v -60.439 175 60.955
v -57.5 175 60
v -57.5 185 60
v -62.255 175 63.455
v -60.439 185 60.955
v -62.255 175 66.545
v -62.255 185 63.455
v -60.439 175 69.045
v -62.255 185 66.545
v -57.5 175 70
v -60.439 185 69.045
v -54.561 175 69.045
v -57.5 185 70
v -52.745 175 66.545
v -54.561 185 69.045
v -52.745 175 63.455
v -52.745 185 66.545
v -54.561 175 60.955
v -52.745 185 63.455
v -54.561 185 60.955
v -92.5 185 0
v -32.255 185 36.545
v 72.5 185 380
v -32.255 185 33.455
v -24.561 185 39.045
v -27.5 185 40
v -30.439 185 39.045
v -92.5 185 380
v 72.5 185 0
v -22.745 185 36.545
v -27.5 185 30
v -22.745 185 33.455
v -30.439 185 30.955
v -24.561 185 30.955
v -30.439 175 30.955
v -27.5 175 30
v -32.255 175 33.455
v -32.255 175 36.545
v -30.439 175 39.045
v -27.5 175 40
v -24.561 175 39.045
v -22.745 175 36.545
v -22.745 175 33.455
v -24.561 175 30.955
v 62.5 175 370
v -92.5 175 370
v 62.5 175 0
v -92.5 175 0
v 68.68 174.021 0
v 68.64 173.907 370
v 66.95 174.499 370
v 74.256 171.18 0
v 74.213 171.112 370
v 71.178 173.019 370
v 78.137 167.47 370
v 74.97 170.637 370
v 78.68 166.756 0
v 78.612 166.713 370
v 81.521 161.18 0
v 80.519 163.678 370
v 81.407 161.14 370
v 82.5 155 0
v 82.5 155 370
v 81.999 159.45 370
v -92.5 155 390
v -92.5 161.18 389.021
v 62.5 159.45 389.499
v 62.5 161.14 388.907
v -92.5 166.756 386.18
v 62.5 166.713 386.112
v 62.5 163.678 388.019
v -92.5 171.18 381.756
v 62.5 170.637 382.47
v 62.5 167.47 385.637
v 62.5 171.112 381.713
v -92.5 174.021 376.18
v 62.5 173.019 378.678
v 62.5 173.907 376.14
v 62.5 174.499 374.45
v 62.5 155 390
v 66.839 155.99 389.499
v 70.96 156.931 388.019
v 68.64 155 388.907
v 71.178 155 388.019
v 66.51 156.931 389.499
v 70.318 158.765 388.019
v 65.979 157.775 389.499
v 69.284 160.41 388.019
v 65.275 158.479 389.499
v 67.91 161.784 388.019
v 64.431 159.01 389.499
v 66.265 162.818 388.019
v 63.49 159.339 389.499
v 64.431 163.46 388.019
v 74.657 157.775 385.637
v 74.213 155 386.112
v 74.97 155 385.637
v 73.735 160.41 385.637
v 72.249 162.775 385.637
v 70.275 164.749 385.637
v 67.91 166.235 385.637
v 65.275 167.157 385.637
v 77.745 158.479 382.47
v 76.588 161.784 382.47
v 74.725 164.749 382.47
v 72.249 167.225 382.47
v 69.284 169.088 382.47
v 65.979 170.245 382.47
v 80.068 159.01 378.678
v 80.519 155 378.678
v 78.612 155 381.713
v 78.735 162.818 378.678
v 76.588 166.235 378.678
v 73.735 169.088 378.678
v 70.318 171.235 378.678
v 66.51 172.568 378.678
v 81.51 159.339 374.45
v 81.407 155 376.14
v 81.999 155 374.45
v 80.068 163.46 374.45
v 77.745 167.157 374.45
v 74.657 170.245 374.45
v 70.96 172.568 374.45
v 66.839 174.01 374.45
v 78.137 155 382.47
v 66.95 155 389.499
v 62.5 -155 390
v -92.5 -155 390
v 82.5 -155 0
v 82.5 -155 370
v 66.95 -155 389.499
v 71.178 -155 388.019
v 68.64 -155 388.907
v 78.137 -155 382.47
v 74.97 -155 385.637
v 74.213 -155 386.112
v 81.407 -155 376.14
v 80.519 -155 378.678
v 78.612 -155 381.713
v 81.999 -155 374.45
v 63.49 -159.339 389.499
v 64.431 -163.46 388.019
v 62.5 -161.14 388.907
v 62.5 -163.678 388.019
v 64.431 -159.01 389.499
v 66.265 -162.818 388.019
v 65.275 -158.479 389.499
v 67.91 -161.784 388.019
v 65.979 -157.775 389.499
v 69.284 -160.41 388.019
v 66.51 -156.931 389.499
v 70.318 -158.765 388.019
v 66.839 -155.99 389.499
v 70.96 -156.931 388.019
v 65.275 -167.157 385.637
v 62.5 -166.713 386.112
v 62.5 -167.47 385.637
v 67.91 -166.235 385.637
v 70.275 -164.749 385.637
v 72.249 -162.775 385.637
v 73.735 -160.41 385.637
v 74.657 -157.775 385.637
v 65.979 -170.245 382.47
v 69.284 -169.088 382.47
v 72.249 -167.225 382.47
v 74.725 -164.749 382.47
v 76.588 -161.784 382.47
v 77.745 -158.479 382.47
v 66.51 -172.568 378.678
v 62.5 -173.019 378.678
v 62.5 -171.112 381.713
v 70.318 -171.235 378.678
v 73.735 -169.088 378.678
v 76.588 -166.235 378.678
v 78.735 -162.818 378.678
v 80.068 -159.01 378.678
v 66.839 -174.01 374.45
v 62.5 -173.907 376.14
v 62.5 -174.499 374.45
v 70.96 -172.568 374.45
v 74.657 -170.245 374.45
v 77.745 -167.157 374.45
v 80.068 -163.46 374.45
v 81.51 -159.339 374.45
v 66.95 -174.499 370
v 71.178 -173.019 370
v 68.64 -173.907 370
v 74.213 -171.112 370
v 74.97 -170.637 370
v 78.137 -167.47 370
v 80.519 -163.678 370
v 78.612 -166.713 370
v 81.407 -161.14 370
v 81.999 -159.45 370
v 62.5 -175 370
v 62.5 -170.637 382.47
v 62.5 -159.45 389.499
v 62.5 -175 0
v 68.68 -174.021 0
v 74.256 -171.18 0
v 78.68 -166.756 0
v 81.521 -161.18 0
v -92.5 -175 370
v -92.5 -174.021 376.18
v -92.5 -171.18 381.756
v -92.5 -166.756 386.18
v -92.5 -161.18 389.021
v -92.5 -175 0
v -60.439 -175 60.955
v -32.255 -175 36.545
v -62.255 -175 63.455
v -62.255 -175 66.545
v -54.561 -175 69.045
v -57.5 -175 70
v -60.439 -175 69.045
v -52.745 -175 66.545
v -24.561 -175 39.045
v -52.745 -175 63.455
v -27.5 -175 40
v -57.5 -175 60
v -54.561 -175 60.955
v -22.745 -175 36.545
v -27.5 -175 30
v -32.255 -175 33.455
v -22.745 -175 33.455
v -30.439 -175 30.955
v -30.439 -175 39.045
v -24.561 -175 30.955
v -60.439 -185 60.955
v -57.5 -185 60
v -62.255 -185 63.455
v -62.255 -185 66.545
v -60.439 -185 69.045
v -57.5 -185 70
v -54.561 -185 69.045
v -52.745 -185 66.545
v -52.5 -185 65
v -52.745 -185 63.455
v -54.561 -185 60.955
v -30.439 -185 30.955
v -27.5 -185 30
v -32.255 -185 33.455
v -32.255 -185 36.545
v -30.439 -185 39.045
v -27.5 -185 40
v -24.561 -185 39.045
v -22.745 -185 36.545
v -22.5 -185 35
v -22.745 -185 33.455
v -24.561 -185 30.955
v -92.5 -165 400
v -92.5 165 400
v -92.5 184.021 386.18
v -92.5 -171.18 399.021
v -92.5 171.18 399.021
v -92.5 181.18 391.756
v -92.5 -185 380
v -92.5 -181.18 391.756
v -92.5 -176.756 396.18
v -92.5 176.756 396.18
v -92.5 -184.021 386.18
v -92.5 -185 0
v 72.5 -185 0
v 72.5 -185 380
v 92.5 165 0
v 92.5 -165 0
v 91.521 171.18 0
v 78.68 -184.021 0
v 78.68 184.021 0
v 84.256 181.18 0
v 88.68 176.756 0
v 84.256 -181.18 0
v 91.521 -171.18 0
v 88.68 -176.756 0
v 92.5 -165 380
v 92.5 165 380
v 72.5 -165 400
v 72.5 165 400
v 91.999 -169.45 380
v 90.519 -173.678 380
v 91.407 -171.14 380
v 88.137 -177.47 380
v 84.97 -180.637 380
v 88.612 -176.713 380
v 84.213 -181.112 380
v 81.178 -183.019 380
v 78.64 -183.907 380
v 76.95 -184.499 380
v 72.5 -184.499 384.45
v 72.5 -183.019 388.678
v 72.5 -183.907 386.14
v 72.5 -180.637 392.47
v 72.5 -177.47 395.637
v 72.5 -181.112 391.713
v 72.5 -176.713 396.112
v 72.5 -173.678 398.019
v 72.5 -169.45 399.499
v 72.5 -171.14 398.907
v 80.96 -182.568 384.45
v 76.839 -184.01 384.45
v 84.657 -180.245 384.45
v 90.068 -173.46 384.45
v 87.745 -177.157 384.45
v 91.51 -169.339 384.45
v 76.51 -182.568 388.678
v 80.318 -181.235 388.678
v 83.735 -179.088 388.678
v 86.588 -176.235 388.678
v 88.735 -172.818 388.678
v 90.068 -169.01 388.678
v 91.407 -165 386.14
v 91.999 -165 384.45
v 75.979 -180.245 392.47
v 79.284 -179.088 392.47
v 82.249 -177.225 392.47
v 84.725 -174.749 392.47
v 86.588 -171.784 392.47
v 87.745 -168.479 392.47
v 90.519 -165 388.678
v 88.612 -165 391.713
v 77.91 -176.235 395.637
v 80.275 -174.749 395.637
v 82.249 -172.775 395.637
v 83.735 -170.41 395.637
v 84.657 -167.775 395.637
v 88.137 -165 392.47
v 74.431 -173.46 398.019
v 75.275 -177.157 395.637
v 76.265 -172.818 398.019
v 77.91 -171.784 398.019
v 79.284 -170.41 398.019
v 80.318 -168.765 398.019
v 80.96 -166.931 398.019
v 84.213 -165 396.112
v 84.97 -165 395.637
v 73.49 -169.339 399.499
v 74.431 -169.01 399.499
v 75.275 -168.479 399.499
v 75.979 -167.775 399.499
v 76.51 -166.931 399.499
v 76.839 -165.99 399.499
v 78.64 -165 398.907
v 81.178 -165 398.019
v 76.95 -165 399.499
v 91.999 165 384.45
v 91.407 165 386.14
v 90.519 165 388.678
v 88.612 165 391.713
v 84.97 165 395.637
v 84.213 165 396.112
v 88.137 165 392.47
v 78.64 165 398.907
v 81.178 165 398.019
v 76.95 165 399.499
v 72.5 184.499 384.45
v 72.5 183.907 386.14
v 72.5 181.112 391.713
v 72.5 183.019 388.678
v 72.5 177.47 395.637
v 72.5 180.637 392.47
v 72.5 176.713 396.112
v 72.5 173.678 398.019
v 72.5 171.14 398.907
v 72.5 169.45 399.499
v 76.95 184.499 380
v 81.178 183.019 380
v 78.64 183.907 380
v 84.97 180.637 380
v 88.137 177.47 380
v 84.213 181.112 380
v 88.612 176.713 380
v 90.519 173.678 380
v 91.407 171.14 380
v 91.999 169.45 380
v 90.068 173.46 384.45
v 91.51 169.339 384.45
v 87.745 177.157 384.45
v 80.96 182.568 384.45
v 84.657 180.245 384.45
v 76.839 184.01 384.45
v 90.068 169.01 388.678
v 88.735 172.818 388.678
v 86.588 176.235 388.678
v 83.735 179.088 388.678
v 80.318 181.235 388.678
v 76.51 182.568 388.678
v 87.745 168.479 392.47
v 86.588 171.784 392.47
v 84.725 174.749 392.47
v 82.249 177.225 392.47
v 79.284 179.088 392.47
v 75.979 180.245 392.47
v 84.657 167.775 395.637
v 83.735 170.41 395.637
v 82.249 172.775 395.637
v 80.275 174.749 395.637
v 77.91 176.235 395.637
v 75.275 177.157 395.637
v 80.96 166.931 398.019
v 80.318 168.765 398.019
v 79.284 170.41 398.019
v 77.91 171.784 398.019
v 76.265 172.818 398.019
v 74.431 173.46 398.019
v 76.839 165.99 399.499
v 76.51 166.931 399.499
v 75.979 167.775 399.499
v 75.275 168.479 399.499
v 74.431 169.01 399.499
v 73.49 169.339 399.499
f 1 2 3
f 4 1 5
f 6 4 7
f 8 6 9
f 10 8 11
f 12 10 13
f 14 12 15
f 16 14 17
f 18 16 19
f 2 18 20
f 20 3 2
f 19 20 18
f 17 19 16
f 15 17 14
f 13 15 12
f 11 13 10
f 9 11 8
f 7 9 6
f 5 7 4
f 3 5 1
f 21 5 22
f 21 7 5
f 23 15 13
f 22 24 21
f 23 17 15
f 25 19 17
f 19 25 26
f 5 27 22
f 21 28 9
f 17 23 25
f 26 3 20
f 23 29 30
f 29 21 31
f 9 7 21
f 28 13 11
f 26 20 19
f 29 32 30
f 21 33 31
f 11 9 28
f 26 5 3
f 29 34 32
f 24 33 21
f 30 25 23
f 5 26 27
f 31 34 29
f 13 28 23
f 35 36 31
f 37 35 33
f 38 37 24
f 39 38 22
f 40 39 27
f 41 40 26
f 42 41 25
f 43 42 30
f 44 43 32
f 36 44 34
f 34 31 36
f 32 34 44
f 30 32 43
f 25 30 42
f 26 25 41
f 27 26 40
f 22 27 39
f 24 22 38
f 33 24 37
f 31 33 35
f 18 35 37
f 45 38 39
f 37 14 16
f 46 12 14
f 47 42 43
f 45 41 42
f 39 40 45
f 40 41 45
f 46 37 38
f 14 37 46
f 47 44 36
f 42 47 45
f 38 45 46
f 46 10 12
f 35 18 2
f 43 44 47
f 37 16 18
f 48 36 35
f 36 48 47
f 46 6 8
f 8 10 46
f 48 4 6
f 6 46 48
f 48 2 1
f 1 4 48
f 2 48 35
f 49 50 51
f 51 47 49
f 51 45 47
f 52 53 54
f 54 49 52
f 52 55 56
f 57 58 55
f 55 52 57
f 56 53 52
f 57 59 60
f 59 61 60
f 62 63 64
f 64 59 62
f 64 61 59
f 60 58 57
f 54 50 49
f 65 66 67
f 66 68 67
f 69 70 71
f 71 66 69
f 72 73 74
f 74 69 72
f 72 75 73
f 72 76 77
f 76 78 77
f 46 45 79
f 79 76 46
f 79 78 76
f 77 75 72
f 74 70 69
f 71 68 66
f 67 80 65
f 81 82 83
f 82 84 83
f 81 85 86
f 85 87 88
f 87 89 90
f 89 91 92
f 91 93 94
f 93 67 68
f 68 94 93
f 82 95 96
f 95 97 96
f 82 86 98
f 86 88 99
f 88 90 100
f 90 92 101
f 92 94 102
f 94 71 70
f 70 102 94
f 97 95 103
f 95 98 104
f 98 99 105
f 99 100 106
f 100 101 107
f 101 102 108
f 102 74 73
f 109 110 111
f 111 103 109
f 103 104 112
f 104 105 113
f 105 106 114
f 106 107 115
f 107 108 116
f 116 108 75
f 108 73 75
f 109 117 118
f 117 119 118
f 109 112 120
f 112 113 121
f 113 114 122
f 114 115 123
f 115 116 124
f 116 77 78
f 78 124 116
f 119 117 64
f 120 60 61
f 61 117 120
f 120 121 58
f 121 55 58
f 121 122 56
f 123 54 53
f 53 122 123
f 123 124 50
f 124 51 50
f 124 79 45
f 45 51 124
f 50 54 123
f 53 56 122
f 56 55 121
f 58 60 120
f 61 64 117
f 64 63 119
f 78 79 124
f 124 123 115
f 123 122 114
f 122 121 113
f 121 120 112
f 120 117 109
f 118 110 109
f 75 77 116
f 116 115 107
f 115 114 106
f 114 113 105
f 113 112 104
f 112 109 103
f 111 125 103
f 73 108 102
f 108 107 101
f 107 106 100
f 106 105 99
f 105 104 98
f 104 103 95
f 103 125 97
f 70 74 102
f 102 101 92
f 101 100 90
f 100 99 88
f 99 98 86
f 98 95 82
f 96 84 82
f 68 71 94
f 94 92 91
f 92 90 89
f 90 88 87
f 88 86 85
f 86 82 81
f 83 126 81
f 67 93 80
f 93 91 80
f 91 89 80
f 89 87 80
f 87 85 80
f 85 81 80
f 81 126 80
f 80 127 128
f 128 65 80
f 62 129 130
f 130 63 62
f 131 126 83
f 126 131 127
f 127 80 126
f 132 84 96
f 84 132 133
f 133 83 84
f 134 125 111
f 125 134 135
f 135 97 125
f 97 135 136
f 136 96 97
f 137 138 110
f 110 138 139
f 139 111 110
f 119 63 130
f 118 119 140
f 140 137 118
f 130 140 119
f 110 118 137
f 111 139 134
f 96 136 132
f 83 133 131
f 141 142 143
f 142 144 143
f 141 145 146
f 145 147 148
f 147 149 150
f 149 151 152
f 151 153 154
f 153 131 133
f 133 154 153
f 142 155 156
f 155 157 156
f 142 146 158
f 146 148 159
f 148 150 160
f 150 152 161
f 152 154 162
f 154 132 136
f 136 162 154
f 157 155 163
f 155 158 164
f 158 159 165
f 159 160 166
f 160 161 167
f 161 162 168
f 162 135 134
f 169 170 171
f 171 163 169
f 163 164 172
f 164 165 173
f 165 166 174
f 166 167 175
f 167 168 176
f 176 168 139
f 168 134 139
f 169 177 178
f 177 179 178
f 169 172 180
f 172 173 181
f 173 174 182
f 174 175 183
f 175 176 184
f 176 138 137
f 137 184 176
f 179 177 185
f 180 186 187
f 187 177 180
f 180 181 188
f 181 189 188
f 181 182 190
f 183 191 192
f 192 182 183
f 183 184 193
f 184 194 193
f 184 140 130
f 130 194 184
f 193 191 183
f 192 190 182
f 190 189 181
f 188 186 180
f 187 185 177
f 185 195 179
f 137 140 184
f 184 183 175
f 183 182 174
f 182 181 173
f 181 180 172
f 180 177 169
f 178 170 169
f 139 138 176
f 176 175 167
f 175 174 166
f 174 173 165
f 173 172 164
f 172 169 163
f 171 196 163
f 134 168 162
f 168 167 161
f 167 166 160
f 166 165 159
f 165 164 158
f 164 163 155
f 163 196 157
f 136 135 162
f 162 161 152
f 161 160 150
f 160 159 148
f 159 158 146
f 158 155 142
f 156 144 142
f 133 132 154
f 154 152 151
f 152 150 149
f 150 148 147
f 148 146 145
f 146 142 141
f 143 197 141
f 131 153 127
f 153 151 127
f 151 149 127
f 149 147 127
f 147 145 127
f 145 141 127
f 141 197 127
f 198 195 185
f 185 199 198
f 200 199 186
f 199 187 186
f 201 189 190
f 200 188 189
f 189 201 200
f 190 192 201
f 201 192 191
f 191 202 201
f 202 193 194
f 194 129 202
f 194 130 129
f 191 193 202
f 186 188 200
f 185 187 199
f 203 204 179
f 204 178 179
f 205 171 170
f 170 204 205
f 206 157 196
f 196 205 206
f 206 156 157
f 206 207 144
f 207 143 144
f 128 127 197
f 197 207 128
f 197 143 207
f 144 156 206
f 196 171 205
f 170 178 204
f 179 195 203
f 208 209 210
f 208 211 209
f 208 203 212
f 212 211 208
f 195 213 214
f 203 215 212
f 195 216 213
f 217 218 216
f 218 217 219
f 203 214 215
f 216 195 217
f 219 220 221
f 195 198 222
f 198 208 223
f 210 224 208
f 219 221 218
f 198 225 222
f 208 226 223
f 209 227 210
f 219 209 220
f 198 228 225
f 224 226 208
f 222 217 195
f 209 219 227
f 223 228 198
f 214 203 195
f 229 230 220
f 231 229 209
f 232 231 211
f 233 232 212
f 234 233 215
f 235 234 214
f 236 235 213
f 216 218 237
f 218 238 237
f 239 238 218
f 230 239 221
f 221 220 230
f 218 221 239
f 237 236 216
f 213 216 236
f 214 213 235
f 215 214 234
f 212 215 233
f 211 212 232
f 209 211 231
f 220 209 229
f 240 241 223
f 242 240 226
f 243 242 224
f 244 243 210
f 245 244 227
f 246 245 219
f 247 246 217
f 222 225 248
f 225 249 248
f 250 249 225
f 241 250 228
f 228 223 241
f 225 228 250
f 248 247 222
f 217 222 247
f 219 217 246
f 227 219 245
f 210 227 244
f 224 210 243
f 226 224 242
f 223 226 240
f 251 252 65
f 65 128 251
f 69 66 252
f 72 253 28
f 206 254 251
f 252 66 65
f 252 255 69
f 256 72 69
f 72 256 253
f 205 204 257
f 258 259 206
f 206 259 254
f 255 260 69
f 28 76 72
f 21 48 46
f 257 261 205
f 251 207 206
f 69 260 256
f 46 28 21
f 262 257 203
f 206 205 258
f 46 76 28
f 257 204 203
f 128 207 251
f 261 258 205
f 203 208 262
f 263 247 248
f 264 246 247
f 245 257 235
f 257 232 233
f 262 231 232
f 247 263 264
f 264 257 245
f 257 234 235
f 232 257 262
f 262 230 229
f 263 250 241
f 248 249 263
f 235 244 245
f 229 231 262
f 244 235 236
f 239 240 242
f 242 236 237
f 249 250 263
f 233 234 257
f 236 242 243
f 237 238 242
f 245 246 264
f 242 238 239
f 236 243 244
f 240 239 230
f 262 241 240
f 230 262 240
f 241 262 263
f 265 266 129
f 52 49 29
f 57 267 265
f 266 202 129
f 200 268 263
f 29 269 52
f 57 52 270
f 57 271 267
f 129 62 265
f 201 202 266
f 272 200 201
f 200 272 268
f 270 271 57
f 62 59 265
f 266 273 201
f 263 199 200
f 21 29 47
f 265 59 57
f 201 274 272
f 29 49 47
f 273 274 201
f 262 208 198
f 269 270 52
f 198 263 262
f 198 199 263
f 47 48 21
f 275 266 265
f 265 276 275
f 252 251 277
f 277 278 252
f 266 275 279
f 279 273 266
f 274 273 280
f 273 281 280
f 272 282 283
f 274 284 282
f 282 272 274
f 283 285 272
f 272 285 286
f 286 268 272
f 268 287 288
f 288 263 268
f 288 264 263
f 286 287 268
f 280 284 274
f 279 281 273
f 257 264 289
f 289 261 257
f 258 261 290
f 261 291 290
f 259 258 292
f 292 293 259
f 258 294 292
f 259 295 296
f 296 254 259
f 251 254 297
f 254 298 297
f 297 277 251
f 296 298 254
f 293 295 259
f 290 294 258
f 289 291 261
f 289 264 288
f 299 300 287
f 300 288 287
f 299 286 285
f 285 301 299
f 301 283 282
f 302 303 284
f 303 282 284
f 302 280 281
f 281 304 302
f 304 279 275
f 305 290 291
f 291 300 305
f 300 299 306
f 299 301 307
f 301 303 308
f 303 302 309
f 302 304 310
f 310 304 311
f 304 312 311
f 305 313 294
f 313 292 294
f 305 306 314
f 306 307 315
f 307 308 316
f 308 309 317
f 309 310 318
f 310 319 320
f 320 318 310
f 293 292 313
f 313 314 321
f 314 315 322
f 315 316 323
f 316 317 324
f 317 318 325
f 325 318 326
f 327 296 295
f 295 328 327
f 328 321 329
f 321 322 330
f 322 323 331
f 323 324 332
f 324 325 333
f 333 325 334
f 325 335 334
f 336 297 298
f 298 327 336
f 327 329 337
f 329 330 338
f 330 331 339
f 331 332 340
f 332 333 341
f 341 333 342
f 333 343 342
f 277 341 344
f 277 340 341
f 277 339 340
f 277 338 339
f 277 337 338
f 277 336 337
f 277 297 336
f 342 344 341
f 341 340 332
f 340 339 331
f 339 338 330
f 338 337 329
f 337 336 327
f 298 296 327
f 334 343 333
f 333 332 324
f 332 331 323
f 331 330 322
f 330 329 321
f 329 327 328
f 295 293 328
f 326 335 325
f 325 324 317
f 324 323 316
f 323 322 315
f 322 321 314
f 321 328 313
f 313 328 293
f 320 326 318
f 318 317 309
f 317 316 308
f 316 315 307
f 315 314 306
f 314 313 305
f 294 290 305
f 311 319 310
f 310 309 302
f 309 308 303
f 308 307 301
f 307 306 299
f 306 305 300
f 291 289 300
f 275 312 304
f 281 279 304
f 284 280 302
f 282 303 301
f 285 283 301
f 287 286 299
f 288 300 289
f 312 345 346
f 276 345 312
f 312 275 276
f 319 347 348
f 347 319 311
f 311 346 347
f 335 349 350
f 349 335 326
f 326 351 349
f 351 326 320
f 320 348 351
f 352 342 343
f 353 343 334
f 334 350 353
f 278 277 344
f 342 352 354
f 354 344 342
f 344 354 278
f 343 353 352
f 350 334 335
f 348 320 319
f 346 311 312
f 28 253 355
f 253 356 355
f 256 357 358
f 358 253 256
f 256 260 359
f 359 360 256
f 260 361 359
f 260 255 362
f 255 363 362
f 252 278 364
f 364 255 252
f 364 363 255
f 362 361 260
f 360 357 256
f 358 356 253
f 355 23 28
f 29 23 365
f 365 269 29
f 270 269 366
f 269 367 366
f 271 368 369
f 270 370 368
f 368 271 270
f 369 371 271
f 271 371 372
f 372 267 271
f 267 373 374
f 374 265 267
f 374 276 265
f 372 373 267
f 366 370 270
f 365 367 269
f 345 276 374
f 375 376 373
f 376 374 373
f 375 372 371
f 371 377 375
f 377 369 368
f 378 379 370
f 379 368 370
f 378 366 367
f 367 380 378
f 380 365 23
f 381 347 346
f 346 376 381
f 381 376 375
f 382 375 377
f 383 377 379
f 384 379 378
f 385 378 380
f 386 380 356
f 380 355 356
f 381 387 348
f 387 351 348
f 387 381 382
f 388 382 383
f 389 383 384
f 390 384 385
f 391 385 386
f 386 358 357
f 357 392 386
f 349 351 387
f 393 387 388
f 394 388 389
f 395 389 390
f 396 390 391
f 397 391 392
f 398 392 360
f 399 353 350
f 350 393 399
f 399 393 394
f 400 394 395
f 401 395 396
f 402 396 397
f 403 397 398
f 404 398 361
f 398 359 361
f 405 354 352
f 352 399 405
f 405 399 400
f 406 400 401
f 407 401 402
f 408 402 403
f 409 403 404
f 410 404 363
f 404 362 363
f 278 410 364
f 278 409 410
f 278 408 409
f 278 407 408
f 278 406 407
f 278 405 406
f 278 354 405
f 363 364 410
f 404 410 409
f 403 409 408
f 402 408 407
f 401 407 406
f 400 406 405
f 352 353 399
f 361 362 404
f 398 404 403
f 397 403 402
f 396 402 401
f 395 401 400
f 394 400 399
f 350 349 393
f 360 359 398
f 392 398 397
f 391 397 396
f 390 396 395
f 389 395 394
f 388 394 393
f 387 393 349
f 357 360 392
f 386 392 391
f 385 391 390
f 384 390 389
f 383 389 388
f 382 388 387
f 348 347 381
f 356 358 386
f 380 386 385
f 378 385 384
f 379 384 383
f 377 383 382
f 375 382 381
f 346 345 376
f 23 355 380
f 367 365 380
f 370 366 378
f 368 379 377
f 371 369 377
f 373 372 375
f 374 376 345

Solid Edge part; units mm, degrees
sketch "Sketch1" plane through (0, 0, 0) normal (0, 0, 1) x (1, 0, 0)
  line L0 (92.5, 185) -> (-92.5, 185)
  line L1 (-92.5, 185) -> (-92.5, -185)
  line L2 (-92.5, -185) -> (92.5, -185)
  line L3 (92.5, -185) -> (92.5, 185)
  dimension "D1" = 185
  dimension "D2" = 370
extrude "Protrusion1" add sketch "Sketch1" along normal blind 400
sketch "Sketch2" plane through (-92.5, 0, 200) normal (-1, 0, 0) x (0, 0, 1)
  line L0 (190, -175) -> (-200, -175)
  line L1 (-200, -175) -> (-200, 175)
  line L2 (-200, 175) -> (190, 175)
  line L3 (190, 175) -> (190, -175)
  dimension "D1" = 350
  dimension "D2" = 10
extrude "ScavoEstrusione_2" cut sketch "Sketch2" against normal blind 175
fillet "Rotondo_1" radius 20 10 edges at (-5, 175, 390) (82.5, 0, 390) (-5, -175, 390) (82.5, -175, 195) (82.5, 175, 195) (92.5, 185, 200) (0, 185, 400) (92.5, 0, 400) (92.5, -185, 200) (0, -185, 400)
sketch "Sketch3" plane through (-10, -185, 190) normal (0, -1, 0) x (1, 0, 0)
  circle A0 centre (-47.5, -125) radius 5
  circle A1 centre (-17.5, -155) radius 5
  dimension "D1" = 30
  dimension "D2" = 35
  dimension "D3" = 35
extrude "Cutout1" cut sketch "Sketch3" against normal through all
properties material "Fe 360 B UNI 7070"
